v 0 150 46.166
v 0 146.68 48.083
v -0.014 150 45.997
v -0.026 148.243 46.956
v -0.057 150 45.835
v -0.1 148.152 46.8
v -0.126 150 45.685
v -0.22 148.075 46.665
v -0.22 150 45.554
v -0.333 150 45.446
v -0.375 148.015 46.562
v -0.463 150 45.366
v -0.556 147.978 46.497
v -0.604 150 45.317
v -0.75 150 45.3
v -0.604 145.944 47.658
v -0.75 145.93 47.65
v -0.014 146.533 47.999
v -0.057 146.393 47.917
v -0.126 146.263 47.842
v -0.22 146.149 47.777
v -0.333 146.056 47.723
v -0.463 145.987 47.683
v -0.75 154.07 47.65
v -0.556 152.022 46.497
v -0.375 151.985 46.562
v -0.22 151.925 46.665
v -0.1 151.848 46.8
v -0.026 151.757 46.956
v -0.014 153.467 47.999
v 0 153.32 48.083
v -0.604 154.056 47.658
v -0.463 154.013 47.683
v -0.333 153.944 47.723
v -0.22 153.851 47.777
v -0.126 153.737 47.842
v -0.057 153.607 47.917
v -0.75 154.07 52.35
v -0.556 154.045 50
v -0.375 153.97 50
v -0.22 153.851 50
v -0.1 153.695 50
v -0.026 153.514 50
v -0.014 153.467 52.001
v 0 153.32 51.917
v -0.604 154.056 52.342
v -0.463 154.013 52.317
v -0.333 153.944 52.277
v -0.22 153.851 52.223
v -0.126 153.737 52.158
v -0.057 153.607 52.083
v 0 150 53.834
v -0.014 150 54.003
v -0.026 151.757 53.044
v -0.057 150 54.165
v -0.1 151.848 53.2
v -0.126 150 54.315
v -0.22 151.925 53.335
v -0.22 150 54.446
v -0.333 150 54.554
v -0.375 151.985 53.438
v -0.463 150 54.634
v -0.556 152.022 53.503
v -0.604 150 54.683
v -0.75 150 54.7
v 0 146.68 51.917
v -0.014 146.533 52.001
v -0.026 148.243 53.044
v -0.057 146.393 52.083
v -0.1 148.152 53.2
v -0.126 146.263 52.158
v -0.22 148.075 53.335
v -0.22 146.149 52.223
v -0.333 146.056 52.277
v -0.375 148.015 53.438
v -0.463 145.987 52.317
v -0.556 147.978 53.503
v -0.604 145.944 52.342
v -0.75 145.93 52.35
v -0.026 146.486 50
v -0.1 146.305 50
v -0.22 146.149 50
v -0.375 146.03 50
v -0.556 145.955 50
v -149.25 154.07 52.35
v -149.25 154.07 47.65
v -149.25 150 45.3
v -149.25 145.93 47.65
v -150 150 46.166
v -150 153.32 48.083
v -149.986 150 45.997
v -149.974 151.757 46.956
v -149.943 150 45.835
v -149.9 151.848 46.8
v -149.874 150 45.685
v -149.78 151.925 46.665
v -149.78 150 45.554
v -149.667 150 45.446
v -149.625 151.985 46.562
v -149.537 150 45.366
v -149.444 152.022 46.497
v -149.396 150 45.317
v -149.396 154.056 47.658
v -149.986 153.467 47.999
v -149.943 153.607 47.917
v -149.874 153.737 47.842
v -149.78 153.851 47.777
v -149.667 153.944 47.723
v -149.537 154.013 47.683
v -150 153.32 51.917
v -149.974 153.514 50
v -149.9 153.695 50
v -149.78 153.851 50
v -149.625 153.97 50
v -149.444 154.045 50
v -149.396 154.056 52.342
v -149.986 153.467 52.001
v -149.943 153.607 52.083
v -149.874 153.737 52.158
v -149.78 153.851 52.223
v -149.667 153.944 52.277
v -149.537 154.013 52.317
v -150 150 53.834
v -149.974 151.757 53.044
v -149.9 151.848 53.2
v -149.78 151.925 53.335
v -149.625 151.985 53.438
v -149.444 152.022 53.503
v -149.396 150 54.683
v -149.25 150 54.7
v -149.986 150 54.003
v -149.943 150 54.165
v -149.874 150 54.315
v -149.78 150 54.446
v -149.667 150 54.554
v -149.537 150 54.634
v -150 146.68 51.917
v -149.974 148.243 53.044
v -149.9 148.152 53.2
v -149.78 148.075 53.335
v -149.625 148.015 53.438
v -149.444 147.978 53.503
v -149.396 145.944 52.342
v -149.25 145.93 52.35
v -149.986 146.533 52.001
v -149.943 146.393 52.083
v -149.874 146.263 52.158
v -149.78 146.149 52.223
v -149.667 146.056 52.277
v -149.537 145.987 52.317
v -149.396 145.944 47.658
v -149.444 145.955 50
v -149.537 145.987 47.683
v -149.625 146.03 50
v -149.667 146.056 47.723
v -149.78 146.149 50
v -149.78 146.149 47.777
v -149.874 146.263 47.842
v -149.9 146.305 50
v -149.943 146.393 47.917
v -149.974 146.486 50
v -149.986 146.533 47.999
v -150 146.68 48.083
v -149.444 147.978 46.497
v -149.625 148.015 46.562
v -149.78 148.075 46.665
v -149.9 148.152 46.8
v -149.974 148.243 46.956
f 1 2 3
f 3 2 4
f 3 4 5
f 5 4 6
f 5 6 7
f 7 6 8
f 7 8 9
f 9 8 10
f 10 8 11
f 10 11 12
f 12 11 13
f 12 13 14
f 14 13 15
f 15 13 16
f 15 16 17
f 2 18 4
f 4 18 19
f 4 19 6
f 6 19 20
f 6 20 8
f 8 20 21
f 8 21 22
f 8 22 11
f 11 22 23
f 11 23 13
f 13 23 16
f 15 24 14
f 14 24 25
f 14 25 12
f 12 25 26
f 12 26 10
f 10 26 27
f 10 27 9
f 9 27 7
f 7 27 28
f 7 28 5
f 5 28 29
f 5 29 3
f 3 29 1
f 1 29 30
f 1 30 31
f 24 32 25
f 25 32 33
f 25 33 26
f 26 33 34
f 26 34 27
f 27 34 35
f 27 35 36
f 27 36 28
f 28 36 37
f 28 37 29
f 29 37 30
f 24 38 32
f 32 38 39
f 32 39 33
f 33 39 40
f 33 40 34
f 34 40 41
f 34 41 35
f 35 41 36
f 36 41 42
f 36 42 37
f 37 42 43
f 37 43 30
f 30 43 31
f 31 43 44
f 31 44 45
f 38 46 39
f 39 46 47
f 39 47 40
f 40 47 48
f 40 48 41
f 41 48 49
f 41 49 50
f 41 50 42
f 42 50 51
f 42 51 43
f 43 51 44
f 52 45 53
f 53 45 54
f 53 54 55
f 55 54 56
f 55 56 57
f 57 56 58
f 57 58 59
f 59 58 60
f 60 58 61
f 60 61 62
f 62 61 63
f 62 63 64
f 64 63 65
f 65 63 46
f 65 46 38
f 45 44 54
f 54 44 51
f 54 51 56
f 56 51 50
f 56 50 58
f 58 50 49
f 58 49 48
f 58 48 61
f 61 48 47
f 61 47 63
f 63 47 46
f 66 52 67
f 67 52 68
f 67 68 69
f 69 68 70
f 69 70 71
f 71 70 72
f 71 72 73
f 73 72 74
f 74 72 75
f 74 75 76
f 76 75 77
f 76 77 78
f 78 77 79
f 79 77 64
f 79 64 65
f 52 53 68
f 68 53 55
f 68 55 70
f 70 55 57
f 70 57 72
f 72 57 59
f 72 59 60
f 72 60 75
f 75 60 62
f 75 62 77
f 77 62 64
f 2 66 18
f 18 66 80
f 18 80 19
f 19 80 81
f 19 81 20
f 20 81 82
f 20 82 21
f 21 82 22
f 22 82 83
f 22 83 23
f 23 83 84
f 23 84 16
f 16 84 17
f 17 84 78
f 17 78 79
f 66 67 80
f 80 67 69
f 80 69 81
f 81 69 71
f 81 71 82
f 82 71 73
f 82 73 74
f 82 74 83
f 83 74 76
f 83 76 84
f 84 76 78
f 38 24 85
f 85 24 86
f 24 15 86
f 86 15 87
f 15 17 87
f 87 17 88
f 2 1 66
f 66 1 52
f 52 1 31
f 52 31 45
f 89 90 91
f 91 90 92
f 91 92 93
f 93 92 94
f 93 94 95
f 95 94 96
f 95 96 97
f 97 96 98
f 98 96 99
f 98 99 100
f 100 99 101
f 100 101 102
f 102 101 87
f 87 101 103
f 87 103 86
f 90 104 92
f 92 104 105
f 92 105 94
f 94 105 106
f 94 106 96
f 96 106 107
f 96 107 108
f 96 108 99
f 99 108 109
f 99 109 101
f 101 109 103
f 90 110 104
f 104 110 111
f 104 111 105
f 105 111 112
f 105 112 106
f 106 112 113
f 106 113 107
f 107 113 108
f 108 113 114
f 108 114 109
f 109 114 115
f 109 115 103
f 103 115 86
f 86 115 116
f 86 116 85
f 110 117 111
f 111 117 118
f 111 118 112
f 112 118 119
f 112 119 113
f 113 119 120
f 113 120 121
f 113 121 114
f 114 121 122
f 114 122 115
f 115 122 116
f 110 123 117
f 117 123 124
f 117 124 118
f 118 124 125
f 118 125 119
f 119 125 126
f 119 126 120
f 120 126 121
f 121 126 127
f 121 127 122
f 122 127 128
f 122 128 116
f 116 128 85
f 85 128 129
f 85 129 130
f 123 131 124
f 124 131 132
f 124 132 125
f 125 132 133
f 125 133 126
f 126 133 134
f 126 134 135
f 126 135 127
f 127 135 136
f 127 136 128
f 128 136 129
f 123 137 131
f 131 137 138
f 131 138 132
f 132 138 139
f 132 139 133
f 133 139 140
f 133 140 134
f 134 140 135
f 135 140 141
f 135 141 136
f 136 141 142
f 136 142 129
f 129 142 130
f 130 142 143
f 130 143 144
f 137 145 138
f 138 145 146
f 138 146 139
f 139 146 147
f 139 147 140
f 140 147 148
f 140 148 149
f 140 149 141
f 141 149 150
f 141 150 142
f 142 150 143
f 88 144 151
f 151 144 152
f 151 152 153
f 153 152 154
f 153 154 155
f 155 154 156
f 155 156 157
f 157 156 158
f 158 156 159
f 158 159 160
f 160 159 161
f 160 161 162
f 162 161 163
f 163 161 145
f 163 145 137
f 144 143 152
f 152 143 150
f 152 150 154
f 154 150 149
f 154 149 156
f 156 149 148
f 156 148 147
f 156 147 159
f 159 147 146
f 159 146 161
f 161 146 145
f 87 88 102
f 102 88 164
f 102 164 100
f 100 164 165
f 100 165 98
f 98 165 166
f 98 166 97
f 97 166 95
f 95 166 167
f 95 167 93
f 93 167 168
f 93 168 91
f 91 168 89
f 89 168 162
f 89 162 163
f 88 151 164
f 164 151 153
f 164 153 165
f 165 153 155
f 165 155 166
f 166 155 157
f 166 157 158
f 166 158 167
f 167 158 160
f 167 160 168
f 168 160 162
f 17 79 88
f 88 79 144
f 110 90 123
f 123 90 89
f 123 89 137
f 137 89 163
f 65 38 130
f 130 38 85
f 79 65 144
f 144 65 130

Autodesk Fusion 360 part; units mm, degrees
sketch "main_driver" plane through (0, 0, 0) normal (1, 0, 0) x (0, 1, 0)
  line L0 (150, 45.3) -> (154.0703, 47.65)
  line L1 (154.0703, 47.65) -> (154.0703, 52.35)
  line L2 (154.0703, 52.35) -> (150, 54.7)
  line L3 (150, 54.7) -> (145.9297, 52.35)
  line L4 (145.9297, 52.35) -> (145.9297, 47.65)
  line L5 (145.9297, 47.65) -> (150, 45.3)
  point P0 (150, 50)
  dimension "d1" = 4.7
extrude "Extrude1" add sketch "main_driver" against normal blind 150
fillet "Fillet1" radius 0.75 12 edges at (-150, 147.9648, 53.525) (-150, 152.0352, 53.525) (-150, 154.0703, 50) (-150, 152.0352, 46.475) (-150, 147.9648, 46.475) (-150, 145.9297, 50) (0, 152.0352, 53.525) (0, 147.9648, 53.525) (0, 145.9297, 50) (0, 147.9648, 46.475) (0, 152.0352, 46.475) (0, 154.0703, 50)
